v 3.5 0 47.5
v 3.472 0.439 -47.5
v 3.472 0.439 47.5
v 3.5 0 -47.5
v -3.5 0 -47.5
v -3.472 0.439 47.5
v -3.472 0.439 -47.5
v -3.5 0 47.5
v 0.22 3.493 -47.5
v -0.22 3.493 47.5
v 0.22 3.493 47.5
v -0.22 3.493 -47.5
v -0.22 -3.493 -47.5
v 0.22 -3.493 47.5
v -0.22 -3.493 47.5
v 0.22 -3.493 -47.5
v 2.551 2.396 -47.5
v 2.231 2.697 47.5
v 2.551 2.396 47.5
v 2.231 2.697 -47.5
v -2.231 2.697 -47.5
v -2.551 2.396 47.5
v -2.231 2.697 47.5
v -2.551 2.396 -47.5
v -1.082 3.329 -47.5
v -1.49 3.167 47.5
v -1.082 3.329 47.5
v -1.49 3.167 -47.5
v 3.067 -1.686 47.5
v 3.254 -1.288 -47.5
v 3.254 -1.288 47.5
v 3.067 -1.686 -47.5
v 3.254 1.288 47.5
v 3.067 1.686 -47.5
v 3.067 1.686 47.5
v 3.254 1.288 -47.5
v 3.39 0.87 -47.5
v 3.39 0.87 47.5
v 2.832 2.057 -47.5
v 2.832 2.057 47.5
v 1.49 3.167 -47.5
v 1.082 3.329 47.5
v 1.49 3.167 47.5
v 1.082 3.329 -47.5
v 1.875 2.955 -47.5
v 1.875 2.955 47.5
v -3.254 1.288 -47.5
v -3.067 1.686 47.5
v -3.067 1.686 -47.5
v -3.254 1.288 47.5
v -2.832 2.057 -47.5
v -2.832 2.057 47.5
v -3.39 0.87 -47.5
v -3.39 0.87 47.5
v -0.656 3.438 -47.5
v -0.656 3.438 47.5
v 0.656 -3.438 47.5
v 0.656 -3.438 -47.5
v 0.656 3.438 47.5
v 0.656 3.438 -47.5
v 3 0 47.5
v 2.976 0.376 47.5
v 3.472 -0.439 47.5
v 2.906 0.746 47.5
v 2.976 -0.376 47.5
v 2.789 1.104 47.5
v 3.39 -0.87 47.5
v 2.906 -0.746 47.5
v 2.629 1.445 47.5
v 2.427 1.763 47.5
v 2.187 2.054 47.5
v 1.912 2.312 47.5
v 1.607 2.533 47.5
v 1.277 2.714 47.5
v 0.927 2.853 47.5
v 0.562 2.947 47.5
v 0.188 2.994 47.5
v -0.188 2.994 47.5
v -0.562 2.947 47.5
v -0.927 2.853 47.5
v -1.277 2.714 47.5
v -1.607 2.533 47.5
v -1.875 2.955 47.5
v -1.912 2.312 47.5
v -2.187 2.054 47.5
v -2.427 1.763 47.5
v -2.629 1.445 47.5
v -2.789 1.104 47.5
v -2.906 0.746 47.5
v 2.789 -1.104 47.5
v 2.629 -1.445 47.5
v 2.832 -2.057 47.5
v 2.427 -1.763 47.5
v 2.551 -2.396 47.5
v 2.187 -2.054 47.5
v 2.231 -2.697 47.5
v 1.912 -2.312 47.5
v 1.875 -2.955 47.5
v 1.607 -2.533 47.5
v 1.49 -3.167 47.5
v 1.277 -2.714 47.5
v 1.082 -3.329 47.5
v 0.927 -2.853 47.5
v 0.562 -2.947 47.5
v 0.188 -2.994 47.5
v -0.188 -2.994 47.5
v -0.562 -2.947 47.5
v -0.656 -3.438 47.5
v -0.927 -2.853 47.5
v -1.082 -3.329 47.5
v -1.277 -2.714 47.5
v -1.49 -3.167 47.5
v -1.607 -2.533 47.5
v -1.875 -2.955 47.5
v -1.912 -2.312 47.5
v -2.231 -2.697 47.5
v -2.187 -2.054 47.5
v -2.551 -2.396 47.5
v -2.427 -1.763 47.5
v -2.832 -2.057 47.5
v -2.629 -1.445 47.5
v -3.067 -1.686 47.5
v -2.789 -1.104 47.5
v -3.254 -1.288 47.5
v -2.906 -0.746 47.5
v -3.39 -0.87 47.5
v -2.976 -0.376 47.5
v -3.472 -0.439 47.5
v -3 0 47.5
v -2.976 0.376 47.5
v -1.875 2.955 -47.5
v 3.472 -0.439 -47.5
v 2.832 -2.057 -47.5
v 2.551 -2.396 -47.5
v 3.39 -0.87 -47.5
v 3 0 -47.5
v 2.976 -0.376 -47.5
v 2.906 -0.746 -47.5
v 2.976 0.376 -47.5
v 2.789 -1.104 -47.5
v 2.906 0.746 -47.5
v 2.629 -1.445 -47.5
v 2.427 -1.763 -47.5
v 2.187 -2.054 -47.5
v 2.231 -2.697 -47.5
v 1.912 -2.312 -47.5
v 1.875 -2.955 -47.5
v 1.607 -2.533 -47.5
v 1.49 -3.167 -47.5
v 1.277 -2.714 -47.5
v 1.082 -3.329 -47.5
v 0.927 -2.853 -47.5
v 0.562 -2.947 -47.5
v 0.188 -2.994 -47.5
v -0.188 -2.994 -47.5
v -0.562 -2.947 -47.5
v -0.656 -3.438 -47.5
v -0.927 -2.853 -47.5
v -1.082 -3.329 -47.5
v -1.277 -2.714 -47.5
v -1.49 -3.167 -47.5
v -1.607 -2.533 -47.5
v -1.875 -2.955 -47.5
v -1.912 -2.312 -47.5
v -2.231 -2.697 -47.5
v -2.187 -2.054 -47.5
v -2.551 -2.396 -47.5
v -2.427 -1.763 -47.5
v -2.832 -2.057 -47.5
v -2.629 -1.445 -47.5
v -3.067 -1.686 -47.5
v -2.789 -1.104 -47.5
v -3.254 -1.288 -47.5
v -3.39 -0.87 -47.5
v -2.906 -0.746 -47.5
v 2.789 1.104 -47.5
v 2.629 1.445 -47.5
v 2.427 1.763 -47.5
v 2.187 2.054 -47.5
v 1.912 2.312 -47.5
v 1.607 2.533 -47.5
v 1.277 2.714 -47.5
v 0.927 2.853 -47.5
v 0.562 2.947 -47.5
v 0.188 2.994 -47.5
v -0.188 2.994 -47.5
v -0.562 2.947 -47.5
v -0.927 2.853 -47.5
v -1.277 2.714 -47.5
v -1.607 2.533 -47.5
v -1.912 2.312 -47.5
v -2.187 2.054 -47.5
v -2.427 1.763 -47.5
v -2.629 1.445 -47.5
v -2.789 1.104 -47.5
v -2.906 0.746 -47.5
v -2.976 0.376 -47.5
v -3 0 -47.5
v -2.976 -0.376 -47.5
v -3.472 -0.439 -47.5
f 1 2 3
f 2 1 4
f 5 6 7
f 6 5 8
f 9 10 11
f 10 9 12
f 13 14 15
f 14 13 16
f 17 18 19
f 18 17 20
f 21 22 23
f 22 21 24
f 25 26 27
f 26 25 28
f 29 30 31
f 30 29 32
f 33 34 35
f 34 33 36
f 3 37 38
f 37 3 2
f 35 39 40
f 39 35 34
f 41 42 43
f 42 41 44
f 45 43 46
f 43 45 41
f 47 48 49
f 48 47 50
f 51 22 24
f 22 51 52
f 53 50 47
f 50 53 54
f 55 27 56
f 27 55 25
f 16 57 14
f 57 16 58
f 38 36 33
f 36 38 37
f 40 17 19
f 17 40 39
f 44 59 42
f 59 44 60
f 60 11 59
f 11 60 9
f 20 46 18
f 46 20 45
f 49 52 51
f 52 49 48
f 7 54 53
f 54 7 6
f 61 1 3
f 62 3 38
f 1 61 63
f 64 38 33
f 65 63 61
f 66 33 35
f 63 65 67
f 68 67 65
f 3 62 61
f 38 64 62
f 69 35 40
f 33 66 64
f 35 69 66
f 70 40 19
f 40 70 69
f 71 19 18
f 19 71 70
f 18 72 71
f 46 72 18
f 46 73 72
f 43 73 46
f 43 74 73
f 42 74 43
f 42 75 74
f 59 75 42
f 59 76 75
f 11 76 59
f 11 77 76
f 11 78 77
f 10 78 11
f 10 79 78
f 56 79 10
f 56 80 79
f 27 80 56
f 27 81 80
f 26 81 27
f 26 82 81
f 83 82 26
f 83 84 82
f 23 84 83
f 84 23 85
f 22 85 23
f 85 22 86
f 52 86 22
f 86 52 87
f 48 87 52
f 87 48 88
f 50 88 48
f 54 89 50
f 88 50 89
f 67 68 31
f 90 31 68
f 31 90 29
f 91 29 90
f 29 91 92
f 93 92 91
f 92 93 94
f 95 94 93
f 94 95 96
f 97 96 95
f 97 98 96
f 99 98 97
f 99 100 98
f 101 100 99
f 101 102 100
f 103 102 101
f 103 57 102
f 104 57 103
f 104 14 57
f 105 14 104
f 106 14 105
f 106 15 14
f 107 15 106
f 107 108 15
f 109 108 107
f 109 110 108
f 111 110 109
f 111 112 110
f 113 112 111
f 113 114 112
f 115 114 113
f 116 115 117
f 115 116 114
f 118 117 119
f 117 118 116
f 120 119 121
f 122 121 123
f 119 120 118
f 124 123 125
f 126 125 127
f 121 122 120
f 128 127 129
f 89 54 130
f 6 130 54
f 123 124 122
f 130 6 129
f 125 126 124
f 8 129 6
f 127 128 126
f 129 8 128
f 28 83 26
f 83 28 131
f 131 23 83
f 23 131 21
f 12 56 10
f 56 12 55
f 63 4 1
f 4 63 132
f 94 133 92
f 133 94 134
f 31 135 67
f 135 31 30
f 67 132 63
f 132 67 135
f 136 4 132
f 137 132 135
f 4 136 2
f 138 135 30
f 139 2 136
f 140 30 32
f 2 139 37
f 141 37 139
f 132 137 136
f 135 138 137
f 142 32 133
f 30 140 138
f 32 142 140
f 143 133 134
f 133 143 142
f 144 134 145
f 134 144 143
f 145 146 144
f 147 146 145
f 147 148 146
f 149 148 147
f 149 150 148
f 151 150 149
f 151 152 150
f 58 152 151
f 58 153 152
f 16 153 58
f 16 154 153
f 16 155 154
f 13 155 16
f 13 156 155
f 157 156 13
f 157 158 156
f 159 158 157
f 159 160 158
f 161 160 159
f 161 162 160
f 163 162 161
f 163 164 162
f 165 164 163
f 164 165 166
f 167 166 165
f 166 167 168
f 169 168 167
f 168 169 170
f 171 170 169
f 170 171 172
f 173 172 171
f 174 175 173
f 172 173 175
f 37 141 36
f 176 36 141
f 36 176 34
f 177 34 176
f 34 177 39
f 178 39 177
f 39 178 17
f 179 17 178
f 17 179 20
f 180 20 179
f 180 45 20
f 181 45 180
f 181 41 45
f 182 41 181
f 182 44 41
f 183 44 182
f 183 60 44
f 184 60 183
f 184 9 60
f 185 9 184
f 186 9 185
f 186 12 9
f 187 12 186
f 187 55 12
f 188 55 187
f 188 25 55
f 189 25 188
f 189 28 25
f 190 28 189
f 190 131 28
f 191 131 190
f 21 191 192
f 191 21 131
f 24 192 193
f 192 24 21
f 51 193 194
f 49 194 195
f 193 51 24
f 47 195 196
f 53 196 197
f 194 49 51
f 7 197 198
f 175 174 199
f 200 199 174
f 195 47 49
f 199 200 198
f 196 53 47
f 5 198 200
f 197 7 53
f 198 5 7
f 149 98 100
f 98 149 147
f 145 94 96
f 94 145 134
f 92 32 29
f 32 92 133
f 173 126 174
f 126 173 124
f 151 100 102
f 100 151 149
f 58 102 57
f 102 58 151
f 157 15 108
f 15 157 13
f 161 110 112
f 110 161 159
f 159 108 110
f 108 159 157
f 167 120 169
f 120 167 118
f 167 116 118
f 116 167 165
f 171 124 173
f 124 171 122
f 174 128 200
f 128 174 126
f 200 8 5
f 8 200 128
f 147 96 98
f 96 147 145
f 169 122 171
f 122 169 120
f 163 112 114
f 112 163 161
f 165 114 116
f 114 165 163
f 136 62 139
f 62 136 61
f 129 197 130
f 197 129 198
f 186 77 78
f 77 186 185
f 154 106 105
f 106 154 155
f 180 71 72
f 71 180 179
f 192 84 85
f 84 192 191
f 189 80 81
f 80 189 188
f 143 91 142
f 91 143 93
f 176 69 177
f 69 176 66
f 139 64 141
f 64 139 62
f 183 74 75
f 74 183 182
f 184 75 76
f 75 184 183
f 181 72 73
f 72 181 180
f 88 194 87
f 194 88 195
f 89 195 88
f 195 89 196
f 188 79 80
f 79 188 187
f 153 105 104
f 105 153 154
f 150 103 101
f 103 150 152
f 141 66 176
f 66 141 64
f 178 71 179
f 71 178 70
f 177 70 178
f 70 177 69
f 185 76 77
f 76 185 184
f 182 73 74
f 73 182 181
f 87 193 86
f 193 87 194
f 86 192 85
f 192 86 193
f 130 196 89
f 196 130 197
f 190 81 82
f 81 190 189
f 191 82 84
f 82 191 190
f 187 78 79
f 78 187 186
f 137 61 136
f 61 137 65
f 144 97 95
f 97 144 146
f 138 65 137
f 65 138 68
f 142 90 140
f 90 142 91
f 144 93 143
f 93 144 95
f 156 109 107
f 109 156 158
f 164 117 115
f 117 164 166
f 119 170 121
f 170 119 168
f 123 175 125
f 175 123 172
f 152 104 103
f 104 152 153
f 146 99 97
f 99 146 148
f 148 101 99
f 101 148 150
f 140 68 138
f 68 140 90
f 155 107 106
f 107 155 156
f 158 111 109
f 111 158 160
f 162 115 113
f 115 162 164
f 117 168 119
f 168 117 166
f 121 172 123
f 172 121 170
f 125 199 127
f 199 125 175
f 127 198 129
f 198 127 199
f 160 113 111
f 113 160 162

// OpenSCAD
$fn = 50;


difference() {
	union() {
		translate(v = [0, 0, -47.5000000000]) {
			cylinder(h = 95, r = 3.5000000000);
		}
	}
	union() {
		translate(v = [0, 0, -100.0000000000]) {
			cylinder(h = 200, r = 3.0000000000);
		}
	}
}
